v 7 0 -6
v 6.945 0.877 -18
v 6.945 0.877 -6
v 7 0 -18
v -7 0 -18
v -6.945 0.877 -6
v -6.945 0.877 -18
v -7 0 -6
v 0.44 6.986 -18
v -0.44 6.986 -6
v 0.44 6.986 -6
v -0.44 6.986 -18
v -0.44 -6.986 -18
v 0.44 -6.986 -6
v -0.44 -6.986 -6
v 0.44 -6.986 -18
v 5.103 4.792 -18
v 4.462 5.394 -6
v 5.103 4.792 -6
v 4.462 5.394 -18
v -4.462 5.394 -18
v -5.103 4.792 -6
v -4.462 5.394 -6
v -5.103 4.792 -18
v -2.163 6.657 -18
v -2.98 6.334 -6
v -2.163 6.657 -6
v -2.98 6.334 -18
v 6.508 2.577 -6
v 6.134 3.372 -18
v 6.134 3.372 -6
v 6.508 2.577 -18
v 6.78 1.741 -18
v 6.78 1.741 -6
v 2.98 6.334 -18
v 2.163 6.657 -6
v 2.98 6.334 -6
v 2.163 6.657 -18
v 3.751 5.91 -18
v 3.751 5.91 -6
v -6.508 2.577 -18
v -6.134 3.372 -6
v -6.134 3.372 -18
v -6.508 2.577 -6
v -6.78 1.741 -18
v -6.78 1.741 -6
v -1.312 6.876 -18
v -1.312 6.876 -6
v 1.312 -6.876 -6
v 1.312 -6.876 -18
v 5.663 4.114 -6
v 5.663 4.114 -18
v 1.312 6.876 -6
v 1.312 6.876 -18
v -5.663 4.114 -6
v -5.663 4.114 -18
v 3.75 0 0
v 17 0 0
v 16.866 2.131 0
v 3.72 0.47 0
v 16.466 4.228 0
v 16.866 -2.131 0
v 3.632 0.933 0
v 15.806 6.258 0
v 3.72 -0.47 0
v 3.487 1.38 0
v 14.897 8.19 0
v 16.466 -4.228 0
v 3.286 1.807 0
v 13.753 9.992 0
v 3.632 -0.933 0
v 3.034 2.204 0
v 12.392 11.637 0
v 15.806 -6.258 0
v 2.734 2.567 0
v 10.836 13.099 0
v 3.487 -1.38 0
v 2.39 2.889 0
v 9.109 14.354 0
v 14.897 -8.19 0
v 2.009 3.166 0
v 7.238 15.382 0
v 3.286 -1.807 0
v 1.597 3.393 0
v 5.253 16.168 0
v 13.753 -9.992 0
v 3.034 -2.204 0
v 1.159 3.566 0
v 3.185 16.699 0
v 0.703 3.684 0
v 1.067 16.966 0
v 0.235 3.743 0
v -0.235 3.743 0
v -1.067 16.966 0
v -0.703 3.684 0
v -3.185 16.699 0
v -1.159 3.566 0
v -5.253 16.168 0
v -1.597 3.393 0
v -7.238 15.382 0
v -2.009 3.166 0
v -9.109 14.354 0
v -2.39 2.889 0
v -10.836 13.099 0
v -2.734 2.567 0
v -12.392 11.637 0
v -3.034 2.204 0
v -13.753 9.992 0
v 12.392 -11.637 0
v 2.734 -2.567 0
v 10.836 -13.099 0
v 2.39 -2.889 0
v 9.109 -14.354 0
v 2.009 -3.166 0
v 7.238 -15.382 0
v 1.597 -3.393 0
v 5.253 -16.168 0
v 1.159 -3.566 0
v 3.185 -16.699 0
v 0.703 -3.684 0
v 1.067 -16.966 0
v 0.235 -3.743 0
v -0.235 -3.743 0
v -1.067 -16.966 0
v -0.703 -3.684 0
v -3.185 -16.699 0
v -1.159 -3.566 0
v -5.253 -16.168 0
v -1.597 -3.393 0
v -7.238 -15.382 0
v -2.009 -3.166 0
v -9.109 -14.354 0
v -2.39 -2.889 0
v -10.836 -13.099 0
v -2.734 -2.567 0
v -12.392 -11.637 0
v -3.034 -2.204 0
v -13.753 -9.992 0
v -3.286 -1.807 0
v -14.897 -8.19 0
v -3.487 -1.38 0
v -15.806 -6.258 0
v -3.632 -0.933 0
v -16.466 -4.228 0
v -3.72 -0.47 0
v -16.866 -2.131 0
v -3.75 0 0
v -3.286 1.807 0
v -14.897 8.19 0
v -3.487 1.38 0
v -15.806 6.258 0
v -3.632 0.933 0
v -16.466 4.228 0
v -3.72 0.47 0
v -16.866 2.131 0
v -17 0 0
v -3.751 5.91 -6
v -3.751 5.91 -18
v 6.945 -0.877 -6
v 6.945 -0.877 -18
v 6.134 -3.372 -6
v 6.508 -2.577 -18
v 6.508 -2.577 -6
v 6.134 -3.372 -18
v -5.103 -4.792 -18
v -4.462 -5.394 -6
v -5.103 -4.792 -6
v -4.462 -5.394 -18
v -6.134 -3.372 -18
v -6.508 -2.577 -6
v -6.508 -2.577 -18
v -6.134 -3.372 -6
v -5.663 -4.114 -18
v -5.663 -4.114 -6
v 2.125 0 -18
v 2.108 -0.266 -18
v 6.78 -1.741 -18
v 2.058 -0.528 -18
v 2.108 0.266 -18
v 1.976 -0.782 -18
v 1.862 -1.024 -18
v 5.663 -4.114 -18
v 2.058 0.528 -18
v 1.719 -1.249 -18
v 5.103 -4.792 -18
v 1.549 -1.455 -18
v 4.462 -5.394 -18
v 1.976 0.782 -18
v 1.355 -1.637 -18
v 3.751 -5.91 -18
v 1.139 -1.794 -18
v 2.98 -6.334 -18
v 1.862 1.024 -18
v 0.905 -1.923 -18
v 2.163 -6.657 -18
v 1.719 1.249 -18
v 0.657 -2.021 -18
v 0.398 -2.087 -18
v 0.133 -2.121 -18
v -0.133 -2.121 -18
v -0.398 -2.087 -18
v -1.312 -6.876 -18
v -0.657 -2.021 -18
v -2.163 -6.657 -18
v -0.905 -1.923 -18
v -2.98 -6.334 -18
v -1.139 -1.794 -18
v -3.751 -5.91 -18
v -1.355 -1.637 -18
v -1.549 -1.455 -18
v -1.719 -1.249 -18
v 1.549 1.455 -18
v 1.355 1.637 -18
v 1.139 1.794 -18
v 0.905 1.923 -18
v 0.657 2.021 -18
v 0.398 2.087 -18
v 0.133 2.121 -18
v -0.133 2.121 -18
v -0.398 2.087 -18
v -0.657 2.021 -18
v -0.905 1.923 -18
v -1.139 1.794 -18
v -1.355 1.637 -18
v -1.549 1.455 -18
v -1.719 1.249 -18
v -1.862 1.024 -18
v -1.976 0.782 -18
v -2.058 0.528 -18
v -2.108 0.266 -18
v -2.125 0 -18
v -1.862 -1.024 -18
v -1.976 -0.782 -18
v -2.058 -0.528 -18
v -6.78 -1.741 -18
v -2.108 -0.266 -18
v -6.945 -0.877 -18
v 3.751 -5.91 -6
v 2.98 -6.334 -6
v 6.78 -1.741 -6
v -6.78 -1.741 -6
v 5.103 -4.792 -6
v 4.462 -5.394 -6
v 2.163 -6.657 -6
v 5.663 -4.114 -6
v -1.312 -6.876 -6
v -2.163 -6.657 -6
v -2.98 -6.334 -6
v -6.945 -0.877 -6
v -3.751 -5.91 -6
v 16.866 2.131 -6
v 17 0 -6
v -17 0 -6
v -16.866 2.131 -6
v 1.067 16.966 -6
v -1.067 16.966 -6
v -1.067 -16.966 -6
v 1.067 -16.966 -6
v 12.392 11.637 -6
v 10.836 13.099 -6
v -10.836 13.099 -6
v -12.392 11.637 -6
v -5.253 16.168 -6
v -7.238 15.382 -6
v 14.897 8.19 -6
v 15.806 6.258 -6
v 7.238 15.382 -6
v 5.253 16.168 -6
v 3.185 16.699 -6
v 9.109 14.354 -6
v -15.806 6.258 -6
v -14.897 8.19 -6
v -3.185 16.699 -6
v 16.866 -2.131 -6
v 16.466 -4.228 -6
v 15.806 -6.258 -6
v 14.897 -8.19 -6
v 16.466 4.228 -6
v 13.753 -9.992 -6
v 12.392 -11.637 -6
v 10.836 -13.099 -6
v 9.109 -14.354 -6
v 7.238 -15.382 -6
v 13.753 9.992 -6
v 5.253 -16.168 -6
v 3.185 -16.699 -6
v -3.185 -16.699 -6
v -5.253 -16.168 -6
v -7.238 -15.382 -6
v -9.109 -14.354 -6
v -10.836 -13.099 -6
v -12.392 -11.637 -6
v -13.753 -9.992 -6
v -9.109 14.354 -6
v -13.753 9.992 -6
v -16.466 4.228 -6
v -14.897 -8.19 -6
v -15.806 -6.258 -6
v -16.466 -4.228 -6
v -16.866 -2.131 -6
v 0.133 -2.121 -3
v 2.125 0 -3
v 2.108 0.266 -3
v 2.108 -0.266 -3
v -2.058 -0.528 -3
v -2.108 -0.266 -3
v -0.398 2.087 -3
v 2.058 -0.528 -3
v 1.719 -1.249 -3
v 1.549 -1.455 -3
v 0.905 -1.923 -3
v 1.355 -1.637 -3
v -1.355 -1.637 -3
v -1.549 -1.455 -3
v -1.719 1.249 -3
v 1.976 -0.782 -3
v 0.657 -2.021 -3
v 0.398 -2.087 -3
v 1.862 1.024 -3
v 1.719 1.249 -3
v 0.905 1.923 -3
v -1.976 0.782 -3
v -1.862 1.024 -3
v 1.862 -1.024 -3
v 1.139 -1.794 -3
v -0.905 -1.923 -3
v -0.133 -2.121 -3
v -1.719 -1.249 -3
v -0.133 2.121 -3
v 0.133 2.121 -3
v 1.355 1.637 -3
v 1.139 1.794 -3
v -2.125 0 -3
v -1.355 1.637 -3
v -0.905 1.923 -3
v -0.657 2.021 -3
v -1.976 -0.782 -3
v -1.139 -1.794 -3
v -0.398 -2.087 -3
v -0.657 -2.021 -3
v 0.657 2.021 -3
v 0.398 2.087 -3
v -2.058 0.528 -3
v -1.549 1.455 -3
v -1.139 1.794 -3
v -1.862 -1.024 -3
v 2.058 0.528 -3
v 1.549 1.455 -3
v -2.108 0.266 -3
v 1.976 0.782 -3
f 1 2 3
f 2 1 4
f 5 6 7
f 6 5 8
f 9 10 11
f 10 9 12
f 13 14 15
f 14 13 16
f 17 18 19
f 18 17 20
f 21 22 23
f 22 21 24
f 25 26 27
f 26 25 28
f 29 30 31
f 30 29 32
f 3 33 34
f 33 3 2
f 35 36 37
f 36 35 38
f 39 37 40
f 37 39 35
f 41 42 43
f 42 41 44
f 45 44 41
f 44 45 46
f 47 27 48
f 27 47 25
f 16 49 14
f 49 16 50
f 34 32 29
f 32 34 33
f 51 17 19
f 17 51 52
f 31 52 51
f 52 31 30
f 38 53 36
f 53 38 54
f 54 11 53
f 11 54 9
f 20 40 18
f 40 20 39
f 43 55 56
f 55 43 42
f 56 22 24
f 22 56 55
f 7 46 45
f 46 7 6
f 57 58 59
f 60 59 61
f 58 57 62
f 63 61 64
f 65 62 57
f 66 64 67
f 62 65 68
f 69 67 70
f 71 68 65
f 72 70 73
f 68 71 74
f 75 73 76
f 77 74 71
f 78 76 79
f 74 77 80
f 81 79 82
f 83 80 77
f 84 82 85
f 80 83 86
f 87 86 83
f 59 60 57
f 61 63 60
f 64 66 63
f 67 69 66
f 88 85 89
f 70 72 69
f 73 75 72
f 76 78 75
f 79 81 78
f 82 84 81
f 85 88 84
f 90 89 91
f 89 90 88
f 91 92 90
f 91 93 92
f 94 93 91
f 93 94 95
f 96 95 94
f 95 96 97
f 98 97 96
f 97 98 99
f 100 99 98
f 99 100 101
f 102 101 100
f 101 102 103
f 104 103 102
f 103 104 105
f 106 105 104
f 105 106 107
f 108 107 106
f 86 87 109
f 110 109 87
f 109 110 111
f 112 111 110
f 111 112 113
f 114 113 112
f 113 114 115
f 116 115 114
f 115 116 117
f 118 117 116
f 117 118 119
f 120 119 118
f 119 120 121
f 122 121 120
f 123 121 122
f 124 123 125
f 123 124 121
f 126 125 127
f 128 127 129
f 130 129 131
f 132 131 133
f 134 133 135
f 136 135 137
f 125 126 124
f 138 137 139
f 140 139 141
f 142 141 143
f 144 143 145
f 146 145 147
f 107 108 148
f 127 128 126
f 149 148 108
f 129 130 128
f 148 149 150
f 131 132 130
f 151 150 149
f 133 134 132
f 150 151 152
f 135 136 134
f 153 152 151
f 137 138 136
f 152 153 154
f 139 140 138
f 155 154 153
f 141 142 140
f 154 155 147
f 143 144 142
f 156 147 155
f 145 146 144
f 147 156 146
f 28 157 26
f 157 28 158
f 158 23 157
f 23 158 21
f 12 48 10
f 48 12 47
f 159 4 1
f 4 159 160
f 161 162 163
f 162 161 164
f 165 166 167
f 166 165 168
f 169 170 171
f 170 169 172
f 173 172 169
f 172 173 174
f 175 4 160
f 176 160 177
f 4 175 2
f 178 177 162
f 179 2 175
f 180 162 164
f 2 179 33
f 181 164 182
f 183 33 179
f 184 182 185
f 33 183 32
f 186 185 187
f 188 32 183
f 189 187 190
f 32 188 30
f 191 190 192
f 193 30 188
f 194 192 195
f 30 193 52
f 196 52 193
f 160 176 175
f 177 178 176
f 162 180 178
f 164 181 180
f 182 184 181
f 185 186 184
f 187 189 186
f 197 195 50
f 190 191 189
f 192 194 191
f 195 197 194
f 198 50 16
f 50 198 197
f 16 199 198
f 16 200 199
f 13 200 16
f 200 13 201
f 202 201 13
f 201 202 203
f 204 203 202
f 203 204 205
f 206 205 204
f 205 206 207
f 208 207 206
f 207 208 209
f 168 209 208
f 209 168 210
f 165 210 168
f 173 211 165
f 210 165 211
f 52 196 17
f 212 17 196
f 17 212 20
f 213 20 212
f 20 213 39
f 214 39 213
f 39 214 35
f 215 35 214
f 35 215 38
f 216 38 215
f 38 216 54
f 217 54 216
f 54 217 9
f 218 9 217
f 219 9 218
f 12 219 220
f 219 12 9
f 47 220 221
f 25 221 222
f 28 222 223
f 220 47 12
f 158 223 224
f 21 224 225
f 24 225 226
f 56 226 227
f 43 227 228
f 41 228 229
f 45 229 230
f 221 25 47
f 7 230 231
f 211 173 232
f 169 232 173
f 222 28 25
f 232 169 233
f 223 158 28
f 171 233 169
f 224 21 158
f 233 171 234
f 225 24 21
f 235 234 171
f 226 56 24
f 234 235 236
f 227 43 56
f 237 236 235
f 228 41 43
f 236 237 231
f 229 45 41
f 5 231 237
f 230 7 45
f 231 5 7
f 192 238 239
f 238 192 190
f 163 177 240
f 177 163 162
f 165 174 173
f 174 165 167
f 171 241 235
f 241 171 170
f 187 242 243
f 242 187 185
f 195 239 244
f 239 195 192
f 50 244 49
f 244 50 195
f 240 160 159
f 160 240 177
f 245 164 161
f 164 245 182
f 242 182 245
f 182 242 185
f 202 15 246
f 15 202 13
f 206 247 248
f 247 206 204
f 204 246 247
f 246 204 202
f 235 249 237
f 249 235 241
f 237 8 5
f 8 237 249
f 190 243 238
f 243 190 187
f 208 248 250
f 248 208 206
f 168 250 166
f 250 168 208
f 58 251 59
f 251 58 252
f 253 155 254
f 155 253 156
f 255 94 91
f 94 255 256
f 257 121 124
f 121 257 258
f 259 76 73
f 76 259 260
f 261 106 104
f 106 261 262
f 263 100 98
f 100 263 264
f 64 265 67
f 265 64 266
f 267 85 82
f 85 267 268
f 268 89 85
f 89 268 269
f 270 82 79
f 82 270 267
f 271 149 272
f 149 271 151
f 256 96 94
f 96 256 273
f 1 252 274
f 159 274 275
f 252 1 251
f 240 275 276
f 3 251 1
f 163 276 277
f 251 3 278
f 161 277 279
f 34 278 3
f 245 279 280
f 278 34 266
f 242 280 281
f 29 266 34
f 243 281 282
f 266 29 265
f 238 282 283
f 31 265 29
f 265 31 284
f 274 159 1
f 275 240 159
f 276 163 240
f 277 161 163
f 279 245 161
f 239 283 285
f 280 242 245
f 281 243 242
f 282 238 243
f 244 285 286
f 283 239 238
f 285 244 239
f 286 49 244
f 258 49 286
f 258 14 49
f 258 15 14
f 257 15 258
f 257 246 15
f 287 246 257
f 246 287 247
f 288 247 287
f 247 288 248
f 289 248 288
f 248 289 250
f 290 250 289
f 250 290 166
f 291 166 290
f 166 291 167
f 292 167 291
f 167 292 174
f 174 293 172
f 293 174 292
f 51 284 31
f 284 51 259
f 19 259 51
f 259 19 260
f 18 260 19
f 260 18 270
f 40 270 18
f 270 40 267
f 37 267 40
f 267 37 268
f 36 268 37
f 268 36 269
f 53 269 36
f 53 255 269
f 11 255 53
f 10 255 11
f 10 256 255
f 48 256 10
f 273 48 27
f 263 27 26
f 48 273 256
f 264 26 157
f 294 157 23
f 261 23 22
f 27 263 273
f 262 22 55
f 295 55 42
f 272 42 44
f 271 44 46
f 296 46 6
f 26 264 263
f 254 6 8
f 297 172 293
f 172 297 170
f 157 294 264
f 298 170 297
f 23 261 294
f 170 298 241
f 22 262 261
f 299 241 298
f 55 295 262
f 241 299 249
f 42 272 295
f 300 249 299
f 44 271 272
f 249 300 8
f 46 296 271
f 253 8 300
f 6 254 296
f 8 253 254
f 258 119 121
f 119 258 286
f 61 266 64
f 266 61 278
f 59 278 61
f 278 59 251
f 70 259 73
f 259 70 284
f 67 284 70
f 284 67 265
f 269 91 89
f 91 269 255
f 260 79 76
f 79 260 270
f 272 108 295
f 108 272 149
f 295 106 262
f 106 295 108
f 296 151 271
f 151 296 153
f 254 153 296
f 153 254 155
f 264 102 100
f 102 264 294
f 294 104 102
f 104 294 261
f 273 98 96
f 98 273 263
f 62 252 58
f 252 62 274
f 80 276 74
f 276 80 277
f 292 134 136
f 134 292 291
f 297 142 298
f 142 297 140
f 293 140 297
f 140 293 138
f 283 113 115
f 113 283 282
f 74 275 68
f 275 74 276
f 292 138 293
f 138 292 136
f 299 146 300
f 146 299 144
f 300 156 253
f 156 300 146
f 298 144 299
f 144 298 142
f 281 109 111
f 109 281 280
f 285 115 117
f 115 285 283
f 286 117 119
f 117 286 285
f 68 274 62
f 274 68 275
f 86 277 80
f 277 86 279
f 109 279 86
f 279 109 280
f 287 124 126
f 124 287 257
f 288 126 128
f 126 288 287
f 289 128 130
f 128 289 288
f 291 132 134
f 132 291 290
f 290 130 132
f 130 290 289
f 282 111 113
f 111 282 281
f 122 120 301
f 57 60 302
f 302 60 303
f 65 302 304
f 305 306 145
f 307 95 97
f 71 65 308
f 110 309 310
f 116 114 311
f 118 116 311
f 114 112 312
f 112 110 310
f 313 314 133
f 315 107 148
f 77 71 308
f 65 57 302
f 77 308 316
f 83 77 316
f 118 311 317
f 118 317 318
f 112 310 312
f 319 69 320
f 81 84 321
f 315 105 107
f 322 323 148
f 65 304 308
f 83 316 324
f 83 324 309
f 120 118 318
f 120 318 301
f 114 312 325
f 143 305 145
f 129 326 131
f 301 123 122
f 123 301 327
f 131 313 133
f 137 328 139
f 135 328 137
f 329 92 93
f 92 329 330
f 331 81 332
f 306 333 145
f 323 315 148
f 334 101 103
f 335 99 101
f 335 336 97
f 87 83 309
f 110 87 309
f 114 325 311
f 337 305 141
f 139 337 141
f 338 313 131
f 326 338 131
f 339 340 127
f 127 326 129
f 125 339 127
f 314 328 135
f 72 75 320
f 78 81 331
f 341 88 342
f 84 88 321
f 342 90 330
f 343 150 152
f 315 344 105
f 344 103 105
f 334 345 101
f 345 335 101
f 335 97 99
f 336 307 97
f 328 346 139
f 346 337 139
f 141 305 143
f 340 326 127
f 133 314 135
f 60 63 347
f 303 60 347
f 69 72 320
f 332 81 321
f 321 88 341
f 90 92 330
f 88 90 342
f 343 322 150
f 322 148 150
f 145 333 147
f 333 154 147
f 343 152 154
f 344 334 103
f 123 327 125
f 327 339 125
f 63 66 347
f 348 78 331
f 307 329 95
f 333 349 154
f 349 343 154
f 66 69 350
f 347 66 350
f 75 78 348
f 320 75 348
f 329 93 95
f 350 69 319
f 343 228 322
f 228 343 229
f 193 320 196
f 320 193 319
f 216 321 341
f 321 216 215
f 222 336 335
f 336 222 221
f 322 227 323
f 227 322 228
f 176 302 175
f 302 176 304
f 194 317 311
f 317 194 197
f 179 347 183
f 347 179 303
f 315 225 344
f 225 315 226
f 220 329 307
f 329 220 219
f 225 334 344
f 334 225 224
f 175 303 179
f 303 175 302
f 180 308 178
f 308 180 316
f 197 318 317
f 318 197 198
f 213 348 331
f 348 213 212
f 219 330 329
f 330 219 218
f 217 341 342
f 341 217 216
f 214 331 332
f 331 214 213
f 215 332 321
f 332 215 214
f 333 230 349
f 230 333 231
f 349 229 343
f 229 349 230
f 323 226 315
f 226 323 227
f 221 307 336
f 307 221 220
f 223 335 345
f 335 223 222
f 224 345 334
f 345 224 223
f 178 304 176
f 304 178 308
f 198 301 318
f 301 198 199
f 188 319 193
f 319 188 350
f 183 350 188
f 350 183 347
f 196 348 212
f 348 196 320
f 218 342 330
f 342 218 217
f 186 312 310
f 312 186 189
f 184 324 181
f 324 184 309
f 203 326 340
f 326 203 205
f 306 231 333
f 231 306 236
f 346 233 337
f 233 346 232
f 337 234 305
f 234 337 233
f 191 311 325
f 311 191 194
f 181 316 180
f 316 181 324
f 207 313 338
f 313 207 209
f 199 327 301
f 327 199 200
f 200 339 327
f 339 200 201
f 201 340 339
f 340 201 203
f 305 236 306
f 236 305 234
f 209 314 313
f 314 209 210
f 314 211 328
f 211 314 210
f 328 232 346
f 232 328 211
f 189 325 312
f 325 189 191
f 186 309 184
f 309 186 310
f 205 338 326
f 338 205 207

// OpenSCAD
$fn = 50;


difference() {
	union() {
		translate(v = [0, 0, -18.0000000000]) {
			cylinder(h = 18, r = 7.0000000000);
		}
		translate(v = [0, 0, -6.0000000000]) {
			cylinder(h = 6, r = 17.0000000000);
		}
	}
	union() {
		translate(v = [0, 0, 0]) {
			rotate(a = [0, 0, 0]) {
				difference() {
					union() {
						#translate(v = [0, 0, -18.0000000000]) {
							cylinder(h = 18, r = 2.0000000000);
						}
						#translate(v = [0, 0, -3]) {
							cylinder(h = 3, r1 = 2.1250000000, r2 = 3.7500000000);
						}
						#translate(v = [0, 0, -18.0000000000]) {
							cylinder(h = 18, r = 2.1250000000);
						}
						#translate(v = [0, 0, -18.0000000000]) {
							cylinder(h = 18, r = 2.0000000000);
						}
					}
					union();
				}
			}
		}
	}
}
